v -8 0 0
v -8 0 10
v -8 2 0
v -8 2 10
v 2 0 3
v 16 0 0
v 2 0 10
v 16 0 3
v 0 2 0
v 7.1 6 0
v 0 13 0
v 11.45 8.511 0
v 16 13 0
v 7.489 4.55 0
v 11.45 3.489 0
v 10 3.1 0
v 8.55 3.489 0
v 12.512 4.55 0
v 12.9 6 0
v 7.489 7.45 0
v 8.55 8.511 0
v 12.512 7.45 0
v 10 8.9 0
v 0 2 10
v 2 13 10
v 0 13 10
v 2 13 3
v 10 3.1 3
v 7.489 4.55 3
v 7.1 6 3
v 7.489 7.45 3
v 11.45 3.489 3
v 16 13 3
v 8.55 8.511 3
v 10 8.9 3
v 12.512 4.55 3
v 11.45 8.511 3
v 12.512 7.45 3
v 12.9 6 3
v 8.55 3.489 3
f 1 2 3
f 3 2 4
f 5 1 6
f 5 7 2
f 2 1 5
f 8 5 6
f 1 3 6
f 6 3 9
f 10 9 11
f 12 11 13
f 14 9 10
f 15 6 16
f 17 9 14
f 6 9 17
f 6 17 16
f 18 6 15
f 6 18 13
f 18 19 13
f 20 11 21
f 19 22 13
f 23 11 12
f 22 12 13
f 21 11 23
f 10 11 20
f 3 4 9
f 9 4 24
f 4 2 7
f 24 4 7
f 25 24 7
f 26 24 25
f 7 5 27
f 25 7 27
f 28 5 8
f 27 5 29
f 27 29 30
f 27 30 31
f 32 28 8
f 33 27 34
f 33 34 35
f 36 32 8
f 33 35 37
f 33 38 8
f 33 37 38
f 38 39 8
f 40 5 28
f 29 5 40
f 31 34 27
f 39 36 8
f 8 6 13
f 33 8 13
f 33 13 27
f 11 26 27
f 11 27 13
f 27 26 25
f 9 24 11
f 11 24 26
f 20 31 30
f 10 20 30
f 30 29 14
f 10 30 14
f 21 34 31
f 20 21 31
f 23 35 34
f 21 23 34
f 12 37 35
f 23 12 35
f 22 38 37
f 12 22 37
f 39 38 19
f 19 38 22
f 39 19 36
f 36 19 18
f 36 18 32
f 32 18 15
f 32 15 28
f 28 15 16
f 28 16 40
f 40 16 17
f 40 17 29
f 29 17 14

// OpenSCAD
thickness=3;
//nema17Width=42.30;
//nema17ScrewWidth = nema17Width-11;

holderWidth=13;
holderLength=16;
//length=nema17Width;

bladeThickness=2;

union(){
	difference(){
		cube([holderLength, holderWidth, thickness]);
		translate([10,6,0])cylinder(h=10,r=5.8/2,$fn=12);
//		translate([width/2,nema17ScrewWidth+5.5,0])cylinder(h=10,r=4/2,$fn=12);
	}
	//translate([0,(length-bladeThickness)/2,0])
	cube([bladeThickness, holderWidth,  10]);
	#translate([-8,0,0])cube([8, bladeThickness,  10]);
	
}
